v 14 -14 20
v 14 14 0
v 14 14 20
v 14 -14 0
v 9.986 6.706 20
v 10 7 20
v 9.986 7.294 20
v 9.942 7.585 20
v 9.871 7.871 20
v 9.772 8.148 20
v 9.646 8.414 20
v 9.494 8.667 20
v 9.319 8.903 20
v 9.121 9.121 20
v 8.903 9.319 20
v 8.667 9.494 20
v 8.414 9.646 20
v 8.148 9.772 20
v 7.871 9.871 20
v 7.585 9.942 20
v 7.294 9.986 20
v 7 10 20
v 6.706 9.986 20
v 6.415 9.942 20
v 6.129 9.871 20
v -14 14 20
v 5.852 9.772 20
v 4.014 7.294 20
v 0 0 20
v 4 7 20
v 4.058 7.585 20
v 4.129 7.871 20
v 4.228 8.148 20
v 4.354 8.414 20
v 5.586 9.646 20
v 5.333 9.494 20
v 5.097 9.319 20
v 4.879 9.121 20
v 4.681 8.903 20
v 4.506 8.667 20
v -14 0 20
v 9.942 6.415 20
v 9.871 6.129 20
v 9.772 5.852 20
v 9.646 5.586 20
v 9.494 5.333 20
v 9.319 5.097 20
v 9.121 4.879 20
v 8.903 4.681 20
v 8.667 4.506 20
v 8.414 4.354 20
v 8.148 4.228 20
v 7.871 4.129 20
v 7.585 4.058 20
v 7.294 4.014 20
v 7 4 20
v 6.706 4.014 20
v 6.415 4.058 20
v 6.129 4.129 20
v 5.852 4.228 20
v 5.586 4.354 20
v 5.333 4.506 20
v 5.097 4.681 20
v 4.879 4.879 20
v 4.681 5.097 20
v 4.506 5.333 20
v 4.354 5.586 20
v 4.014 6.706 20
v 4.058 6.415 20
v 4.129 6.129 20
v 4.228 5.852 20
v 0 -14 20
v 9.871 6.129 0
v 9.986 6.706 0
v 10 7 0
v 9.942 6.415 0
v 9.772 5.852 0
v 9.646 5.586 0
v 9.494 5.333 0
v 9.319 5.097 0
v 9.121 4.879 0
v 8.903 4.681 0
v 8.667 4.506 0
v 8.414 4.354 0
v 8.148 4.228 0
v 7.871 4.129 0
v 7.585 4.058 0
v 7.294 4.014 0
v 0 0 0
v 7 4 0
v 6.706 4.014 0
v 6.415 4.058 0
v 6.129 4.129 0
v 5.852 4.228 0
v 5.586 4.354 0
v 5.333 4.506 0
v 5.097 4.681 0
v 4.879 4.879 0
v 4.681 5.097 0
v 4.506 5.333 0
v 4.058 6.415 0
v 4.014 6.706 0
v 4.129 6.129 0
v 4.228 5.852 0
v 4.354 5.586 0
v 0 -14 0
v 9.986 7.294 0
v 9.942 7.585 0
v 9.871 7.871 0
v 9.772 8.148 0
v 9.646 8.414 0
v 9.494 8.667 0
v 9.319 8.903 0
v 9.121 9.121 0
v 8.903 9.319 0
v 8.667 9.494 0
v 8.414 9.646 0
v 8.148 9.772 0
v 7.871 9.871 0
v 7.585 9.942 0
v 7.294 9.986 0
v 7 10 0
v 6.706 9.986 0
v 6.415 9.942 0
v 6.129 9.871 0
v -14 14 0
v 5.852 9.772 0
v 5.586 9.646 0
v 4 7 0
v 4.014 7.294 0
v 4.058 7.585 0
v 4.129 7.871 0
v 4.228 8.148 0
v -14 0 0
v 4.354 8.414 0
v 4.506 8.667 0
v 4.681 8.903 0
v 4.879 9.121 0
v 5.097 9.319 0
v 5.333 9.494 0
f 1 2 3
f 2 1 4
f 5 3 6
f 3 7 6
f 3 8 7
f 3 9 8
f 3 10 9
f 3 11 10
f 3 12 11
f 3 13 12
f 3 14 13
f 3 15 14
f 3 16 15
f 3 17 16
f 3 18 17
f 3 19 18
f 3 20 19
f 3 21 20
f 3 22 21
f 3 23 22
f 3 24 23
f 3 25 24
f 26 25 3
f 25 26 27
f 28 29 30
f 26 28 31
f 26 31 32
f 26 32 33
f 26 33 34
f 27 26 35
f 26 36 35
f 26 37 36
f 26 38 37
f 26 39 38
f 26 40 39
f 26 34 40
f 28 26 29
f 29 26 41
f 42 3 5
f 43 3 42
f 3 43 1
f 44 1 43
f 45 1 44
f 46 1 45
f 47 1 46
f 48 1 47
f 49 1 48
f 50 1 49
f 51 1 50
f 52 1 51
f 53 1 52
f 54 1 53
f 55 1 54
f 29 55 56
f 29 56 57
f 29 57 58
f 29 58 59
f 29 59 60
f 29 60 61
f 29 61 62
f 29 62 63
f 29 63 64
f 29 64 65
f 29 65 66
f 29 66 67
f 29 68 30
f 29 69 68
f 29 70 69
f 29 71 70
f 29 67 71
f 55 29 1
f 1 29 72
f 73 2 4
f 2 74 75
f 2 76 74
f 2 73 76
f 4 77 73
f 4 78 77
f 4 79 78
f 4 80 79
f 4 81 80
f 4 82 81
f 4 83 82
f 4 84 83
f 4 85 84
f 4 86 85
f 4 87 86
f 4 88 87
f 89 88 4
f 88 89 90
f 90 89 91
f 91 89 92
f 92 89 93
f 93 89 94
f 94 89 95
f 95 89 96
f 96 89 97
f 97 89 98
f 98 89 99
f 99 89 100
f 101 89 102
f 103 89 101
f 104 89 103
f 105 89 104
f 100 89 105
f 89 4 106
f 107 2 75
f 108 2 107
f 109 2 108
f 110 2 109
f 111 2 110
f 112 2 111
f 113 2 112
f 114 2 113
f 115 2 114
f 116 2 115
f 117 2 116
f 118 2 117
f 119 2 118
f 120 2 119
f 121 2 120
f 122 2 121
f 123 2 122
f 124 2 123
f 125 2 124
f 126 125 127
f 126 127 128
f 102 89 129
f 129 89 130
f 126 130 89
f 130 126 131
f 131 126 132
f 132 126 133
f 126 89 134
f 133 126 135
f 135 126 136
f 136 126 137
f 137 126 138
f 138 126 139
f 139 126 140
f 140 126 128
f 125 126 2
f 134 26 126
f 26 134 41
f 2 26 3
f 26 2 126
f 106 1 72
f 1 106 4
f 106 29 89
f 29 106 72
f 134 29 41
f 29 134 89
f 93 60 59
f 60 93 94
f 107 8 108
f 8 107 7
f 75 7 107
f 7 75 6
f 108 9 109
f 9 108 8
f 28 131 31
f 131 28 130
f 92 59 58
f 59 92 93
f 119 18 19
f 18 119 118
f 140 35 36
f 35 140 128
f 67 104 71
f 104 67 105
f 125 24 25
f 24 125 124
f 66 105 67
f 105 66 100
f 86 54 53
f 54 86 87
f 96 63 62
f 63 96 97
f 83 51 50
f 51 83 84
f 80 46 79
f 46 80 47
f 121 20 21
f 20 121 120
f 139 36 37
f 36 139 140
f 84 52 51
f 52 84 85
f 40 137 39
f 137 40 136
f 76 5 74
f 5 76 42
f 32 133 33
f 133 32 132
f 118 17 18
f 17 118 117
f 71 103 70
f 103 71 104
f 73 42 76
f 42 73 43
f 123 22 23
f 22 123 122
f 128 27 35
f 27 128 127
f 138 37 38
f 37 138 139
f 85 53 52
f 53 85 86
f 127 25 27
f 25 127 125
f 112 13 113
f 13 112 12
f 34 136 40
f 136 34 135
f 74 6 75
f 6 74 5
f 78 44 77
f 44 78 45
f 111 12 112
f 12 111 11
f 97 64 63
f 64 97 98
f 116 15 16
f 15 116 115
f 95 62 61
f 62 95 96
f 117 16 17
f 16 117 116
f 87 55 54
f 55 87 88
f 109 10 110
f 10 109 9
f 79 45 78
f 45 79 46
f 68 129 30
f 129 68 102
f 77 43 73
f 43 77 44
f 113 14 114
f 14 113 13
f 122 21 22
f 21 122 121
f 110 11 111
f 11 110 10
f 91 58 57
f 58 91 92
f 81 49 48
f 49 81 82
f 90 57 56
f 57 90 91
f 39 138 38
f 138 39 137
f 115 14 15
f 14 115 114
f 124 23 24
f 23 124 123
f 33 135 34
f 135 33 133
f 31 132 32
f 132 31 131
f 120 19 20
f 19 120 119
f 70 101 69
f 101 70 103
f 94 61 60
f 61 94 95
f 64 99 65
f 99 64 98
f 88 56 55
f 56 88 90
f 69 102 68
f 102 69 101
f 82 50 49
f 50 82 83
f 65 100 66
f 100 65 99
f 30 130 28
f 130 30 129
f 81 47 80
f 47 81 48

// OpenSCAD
$fn = 64;

module corner_bracket() {
    difference() {
        // Outer block
        cube([28, 28, 20], center = true);
        
        // Inner cutout
        translate([-14, -14, -10])
            cube([14, 14, 20]);
        
        // Hole for mounting
        translate([7, 7, 0])
            cylinder(h = 20, r = 3, center = true);
    }
}

translate([0, 0, 10])
    corner_bracket();
